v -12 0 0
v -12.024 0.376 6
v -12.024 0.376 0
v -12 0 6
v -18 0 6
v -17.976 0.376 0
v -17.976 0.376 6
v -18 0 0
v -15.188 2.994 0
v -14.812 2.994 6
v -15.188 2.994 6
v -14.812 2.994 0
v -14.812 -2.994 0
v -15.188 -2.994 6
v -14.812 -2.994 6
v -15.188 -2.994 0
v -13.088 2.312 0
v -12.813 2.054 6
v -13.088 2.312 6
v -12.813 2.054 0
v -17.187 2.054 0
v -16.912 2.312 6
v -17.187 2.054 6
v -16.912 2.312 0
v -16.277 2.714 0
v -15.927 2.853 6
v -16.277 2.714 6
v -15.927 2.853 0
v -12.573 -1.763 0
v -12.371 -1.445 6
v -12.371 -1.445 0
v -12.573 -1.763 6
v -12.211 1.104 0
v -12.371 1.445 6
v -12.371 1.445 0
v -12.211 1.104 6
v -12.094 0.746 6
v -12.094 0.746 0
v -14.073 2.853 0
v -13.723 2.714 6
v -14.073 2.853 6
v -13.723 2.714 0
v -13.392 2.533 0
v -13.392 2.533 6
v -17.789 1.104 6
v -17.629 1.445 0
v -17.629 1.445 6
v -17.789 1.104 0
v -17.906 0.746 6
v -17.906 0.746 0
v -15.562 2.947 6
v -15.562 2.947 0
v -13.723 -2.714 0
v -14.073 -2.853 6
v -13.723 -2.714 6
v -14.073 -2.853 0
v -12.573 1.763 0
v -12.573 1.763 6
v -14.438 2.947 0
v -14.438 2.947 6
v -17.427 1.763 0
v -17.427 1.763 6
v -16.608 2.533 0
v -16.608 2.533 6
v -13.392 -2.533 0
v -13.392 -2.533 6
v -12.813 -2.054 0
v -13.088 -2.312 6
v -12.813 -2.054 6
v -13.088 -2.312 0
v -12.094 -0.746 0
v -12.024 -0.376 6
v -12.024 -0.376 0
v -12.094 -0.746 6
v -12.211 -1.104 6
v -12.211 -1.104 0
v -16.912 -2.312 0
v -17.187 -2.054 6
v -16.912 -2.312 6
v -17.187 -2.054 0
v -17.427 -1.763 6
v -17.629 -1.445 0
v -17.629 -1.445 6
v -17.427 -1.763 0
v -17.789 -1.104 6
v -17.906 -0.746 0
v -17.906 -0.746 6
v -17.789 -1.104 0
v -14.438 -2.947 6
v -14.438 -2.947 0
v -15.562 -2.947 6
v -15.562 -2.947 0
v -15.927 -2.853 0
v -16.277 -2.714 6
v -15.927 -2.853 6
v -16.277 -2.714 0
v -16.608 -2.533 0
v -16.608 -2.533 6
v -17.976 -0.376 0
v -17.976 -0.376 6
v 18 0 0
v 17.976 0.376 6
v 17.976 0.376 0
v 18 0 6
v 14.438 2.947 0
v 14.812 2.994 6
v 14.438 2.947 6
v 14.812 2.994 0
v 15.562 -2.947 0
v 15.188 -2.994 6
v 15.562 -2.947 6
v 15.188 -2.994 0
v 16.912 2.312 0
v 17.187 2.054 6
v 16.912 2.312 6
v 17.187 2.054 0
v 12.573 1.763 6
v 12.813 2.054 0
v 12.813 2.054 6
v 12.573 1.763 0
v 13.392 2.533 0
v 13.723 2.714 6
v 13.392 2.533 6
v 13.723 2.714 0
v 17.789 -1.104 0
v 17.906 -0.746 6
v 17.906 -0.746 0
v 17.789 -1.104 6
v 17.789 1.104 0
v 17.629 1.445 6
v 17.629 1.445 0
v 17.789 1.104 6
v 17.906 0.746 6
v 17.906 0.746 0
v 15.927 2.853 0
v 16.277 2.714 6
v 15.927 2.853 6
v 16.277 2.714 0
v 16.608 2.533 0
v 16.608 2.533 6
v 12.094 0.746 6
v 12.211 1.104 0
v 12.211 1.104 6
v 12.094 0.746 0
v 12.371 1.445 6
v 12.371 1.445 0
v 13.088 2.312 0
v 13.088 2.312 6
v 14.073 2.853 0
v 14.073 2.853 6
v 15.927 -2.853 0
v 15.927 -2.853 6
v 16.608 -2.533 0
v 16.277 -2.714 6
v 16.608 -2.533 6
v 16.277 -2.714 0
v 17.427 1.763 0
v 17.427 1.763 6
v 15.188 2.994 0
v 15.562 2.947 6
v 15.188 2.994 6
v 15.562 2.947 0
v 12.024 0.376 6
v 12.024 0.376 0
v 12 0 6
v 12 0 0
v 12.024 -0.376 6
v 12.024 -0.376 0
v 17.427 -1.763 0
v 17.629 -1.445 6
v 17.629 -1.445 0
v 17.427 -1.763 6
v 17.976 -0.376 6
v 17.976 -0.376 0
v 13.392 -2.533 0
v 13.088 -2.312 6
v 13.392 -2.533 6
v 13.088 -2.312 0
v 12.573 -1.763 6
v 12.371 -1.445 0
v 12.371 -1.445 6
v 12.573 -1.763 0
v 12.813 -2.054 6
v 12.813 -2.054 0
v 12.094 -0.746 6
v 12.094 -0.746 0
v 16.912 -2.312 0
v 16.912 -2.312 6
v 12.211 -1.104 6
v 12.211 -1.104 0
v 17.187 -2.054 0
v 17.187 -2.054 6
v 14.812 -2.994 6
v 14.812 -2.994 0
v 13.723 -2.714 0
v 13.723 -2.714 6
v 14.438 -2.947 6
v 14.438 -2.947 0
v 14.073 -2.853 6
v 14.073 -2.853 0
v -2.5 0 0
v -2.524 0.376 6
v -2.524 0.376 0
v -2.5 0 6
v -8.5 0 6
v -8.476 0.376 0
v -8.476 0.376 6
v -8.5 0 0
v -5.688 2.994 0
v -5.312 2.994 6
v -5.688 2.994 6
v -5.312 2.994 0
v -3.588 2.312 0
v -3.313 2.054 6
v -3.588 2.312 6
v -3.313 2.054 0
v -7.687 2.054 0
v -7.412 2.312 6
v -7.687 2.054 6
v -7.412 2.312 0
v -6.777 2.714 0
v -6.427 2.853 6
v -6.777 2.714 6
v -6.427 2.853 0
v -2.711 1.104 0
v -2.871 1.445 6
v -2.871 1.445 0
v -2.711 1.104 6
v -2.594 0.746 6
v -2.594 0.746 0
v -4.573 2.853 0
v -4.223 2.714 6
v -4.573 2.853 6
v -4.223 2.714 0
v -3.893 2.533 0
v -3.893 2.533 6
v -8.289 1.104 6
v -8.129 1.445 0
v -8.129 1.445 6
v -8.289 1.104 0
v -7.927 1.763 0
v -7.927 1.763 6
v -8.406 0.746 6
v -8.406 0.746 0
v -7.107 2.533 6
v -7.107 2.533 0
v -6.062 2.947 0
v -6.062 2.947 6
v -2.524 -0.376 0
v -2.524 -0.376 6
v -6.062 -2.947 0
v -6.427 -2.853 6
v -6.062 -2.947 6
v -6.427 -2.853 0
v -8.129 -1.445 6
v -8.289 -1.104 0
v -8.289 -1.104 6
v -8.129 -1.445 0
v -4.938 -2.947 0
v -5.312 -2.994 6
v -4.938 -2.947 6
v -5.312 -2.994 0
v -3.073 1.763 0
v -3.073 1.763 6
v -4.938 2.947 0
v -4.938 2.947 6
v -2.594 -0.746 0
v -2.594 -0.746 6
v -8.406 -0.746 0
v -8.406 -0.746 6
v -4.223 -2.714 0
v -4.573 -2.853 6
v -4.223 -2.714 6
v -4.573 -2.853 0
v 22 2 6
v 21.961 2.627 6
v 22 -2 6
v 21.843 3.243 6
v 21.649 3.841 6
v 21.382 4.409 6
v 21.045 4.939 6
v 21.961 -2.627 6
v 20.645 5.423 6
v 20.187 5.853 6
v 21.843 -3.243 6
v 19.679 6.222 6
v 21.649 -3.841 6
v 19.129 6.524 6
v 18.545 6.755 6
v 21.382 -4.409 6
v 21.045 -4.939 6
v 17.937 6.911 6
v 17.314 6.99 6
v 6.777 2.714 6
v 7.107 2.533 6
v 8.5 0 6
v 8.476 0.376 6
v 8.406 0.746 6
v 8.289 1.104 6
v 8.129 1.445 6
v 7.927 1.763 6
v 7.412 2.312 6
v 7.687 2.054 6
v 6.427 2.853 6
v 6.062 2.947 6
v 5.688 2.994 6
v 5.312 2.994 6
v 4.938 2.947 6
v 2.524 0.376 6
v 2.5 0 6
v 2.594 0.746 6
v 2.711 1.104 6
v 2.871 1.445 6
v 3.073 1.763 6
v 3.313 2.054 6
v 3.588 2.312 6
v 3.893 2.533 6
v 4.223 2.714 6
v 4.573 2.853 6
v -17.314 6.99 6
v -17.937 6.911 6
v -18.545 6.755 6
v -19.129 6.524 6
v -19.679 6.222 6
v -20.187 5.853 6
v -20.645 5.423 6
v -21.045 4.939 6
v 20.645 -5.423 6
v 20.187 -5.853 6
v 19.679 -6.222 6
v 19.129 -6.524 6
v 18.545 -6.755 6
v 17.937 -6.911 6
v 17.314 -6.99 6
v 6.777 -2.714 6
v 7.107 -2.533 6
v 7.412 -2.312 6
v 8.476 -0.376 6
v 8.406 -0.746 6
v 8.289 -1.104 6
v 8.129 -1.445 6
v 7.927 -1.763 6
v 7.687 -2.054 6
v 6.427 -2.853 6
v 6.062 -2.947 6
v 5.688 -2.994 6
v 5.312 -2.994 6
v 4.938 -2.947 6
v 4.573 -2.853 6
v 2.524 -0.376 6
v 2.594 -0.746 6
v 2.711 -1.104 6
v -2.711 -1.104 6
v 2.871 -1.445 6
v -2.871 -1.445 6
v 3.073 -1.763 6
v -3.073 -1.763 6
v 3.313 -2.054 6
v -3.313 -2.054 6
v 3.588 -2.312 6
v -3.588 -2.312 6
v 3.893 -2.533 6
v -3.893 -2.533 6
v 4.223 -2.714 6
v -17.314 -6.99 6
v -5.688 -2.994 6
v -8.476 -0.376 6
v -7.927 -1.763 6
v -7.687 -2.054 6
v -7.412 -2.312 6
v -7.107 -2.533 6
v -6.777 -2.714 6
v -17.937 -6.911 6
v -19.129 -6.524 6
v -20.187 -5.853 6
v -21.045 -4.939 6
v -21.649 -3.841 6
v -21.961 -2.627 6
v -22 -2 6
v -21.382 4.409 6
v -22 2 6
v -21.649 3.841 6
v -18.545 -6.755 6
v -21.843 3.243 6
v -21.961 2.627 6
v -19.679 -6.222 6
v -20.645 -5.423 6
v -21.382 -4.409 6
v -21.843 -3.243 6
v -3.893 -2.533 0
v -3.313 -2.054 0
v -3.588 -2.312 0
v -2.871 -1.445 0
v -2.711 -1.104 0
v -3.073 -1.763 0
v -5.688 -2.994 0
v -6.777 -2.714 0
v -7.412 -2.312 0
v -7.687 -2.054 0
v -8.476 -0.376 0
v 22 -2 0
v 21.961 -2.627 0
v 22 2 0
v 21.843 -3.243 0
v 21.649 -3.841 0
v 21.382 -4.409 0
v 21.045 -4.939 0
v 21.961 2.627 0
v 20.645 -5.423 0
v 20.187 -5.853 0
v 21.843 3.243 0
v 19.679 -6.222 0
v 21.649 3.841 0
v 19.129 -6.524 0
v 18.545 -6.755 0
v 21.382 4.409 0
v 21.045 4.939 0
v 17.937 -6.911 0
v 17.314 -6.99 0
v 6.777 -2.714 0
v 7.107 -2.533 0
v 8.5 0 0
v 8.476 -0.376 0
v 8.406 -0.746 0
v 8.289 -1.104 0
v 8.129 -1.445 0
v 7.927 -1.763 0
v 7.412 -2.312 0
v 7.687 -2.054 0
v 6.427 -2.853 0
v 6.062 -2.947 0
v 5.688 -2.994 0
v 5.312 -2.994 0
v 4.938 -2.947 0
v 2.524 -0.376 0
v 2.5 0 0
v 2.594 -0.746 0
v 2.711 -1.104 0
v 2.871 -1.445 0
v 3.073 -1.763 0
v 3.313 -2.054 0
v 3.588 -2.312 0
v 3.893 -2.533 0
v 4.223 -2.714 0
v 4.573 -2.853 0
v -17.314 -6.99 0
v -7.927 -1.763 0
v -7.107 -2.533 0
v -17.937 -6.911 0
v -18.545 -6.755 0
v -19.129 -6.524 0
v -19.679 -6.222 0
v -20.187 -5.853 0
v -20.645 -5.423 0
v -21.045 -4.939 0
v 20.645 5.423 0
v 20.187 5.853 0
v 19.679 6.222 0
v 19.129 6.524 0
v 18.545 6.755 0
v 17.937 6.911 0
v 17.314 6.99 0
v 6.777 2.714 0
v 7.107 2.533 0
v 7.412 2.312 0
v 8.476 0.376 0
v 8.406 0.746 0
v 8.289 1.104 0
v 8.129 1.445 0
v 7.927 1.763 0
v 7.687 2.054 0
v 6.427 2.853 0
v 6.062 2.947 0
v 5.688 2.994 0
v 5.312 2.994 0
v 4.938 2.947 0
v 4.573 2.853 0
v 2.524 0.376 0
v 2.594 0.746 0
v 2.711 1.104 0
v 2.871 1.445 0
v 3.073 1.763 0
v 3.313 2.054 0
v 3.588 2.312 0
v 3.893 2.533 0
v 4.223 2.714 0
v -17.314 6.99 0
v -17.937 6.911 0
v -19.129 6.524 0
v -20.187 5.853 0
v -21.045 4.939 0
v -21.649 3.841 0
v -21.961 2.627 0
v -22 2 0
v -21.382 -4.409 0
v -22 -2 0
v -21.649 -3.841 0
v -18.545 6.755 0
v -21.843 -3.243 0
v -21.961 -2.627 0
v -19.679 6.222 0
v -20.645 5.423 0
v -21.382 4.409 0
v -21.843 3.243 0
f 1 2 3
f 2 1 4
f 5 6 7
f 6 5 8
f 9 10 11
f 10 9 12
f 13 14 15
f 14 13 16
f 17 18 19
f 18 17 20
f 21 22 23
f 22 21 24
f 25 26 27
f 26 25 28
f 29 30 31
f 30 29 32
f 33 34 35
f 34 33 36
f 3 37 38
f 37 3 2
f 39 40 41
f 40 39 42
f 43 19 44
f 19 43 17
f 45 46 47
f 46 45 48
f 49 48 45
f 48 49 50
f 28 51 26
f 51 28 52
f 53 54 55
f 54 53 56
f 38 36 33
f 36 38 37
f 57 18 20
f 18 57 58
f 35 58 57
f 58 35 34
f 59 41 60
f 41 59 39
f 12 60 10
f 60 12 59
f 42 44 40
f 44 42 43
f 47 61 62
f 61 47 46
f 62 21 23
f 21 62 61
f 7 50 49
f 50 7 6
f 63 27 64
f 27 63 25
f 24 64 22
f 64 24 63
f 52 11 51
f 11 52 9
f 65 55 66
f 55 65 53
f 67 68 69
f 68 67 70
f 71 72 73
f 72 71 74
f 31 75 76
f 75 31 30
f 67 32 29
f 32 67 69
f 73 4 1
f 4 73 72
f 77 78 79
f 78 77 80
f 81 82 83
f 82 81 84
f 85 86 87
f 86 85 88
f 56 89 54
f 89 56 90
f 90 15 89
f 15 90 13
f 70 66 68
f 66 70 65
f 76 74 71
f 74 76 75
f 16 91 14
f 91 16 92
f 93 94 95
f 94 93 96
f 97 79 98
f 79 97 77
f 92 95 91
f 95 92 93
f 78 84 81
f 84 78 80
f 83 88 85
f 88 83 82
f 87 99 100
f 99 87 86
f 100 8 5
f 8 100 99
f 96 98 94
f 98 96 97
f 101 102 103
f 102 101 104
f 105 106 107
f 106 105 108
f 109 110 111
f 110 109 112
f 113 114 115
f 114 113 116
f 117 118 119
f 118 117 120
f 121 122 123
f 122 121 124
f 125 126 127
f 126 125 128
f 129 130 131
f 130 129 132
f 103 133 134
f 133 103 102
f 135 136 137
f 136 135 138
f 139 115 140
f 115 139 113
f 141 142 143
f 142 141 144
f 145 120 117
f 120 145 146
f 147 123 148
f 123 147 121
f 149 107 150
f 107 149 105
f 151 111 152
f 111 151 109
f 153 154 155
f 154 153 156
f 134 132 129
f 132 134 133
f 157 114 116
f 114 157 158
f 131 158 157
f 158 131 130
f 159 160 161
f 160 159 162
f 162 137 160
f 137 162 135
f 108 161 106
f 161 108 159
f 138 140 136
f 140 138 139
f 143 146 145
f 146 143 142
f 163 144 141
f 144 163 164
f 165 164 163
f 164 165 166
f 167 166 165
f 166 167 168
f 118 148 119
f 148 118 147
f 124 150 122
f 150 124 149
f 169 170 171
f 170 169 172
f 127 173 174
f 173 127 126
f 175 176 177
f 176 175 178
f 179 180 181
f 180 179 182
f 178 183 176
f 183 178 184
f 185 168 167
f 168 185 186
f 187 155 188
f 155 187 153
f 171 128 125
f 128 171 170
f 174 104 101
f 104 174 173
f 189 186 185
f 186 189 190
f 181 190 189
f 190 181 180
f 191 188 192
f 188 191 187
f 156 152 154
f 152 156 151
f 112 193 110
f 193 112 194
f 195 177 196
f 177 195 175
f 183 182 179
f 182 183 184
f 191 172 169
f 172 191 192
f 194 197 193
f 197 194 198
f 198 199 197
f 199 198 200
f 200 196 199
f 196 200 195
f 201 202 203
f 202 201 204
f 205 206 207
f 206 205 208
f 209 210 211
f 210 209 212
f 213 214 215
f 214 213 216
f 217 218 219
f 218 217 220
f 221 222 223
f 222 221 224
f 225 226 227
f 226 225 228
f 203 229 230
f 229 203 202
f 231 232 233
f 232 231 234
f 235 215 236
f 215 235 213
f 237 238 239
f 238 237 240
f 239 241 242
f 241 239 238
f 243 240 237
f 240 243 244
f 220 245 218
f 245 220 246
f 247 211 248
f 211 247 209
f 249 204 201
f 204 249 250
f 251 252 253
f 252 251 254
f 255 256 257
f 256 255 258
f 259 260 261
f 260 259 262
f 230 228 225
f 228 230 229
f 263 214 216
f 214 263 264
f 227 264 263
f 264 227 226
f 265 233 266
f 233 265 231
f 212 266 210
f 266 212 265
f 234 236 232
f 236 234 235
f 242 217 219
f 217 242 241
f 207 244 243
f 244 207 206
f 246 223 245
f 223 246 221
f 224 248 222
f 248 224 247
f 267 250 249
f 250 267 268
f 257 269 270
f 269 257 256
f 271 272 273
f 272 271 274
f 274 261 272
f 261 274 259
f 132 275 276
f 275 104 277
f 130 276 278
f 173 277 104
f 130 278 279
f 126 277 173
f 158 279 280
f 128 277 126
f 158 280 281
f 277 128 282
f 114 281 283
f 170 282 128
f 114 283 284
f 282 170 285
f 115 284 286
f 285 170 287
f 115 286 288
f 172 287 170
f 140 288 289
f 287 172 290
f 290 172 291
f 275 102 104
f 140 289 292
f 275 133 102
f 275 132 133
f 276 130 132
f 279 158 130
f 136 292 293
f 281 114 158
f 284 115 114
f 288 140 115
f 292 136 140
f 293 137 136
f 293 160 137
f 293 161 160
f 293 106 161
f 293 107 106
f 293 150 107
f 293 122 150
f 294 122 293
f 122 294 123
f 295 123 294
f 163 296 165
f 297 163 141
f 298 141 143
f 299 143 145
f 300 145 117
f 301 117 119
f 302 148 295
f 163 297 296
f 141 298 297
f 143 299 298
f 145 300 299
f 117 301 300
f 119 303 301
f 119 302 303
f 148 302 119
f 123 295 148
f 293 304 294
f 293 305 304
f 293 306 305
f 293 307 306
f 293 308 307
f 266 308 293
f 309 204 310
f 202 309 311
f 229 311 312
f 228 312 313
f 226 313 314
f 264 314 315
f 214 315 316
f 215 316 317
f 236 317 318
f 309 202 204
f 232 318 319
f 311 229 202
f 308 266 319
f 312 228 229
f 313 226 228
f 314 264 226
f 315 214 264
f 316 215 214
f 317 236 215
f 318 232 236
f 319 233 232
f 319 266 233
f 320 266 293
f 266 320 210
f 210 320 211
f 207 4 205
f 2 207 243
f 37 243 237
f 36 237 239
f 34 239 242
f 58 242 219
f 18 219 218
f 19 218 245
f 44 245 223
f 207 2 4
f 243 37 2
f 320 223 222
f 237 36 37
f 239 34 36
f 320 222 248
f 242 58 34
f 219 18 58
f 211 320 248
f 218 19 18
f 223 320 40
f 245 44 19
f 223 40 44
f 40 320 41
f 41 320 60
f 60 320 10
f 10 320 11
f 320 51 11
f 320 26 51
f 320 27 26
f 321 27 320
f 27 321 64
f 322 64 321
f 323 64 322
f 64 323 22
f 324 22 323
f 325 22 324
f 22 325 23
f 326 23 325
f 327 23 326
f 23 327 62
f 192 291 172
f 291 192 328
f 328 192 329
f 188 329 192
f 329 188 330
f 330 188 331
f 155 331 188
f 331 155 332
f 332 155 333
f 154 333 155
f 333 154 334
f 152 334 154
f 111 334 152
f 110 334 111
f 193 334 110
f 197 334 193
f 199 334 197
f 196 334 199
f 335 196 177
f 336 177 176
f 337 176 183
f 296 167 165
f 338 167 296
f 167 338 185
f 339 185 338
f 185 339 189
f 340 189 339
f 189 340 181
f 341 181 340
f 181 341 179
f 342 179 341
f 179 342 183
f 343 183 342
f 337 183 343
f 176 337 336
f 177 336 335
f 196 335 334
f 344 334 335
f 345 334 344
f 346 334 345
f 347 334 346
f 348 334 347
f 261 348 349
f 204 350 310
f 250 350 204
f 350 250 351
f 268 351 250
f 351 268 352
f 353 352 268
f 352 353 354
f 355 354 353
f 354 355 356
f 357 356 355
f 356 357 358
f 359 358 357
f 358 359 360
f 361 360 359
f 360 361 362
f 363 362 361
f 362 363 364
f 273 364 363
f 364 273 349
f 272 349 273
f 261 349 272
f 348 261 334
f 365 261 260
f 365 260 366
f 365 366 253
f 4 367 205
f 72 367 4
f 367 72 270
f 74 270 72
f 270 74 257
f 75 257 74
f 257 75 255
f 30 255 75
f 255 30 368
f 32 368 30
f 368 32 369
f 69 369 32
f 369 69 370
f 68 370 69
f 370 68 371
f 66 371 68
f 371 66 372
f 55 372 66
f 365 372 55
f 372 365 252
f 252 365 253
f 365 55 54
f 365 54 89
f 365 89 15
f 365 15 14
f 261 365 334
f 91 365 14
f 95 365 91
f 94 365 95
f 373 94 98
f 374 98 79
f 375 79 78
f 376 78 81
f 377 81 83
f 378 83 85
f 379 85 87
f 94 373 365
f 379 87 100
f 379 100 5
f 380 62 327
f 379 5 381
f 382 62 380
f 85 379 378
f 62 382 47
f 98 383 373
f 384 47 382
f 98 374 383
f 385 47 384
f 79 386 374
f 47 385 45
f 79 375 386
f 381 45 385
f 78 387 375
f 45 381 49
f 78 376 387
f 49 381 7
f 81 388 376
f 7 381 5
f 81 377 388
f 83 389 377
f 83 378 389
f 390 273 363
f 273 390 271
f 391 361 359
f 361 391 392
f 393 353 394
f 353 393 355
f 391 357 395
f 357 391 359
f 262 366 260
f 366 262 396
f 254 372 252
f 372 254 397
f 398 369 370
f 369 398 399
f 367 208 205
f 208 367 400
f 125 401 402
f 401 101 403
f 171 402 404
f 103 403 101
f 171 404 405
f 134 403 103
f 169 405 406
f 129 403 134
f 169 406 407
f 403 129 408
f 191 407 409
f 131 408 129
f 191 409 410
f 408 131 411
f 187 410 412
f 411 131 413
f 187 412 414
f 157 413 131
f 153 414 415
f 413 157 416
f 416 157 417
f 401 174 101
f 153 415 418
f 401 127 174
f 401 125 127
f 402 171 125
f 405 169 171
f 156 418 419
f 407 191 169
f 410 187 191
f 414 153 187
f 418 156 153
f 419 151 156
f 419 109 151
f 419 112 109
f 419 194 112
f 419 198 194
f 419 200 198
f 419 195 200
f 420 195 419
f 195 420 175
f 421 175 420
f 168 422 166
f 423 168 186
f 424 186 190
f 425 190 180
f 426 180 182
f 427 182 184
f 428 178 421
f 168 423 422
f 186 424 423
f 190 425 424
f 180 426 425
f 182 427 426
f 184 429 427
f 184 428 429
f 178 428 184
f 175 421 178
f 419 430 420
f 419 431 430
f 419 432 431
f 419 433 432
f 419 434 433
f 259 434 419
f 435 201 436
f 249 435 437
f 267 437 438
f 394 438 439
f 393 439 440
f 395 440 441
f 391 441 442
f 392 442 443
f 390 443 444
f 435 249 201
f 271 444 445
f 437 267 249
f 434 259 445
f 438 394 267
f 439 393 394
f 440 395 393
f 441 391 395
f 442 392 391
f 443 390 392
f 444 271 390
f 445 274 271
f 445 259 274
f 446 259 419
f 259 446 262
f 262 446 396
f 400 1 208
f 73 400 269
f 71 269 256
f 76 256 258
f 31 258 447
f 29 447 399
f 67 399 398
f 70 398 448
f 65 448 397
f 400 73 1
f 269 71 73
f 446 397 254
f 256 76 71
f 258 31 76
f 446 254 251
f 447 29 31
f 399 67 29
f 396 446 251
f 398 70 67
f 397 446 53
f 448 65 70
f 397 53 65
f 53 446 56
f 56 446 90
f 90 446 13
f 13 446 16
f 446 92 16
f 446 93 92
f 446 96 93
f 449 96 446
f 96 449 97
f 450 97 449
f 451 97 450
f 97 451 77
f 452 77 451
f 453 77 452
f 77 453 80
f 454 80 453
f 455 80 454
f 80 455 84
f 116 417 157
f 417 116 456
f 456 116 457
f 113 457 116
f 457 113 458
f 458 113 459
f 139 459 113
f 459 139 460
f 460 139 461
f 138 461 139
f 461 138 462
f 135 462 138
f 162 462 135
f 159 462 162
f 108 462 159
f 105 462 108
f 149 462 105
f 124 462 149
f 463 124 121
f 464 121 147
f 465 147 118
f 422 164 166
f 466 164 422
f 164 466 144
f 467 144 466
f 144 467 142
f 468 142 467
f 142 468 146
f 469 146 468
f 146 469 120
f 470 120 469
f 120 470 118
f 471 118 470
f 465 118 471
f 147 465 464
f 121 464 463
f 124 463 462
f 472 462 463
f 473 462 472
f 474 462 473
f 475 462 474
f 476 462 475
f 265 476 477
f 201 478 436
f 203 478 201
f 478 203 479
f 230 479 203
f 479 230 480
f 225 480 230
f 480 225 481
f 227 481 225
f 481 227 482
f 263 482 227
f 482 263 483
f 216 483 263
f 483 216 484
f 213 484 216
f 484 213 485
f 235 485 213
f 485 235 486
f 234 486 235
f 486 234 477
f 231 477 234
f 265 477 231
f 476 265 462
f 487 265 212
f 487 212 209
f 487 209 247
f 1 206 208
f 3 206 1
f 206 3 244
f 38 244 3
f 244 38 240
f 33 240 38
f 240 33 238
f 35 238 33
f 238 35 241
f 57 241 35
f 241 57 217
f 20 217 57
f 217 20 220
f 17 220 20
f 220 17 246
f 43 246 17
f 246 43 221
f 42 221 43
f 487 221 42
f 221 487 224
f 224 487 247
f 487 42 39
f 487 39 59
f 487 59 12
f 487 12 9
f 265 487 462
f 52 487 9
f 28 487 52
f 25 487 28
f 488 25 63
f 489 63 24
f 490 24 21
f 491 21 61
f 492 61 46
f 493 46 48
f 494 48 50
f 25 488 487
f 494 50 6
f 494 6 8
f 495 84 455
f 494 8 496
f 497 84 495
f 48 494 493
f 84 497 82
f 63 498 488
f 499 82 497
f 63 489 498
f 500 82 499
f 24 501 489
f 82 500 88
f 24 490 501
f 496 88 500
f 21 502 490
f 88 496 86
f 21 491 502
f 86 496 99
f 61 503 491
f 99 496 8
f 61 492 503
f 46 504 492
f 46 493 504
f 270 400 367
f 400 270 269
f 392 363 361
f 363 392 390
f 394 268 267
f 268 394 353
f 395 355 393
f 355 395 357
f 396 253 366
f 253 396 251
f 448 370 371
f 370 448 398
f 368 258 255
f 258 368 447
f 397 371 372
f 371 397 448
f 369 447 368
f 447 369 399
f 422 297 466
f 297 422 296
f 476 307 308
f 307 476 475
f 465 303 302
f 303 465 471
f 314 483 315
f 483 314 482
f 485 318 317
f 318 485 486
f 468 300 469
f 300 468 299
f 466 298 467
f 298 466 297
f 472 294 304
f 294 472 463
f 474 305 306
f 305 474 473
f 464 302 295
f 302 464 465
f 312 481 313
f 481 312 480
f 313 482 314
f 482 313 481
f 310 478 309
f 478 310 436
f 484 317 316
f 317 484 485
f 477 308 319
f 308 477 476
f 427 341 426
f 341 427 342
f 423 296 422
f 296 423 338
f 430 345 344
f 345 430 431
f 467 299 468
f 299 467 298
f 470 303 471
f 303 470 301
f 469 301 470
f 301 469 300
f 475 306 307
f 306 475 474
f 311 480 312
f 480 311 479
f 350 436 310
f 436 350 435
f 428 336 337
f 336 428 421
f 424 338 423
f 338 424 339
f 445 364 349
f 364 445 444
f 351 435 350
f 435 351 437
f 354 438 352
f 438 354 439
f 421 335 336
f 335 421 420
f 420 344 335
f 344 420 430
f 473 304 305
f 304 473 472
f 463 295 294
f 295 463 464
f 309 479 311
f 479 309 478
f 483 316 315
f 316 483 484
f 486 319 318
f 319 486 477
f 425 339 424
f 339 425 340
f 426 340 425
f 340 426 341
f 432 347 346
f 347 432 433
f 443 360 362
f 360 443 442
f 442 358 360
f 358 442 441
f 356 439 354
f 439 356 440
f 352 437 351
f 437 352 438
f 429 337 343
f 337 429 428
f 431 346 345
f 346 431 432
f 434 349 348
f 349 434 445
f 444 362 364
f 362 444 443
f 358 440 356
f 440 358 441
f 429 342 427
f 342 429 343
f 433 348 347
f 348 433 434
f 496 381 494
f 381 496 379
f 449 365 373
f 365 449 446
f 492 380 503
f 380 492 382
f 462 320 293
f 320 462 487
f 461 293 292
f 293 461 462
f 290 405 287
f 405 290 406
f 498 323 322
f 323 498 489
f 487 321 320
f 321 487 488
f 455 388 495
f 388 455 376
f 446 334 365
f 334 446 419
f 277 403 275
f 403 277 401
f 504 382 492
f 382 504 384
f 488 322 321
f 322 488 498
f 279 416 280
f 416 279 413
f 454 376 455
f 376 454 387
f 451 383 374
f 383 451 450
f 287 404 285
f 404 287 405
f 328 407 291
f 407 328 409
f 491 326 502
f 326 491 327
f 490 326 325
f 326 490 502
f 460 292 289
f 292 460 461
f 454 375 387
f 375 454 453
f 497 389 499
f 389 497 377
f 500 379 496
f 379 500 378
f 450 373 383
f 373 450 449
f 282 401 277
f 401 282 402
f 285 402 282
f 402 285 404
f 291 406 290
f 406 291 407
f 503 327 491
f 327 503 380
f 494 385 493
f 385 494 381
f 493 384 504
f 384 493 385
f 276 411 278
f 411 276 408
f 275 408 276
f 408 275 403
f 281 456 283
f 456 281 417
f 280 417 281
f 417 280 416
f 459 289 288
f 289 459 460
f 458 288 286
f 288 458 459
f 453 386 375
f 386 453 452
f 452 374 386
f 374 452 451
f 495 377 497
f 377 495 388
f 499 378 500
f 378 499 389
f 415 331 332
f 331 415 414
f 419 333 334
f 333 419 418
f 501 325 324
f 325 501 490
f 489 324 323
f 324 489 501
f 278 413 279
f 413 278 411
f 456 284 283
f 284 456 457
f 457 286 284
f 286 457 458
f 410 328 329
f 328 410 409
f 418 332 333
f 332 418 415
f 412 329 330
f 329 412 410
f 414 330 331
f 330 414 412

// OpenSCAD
$fn = 50;


difference() {
	union() {
		hull() {
			translate(v = [-17.0000000000, 2.0000000000, 0]) {
				cylinder(h = 6, r = 5);
			}
			translate(v = [17.0000000000, 2.0000000000, 0]) {
				cylinder(h = 6, r = 5);
			}
			translate(v = [-17.0000000000, -2.0000000000, 0]) {
				cylinder(h = 6, r = 5);
			}
			translate(v = [17.0000000000, -2.0000000000, 0]) {
				cylinder(h = 6, r = 5);
			}
		}
	}
	union() {
		#translate(v = [-15.0000000000, 0.0000000000, 0]) {
			cylinder(h = 6, r = 3.0000000000);
		}
		#translate(v = [15.0000000000, 0.0000000000, 0]) {
			cylinder(h = 6, r = 3.0000000000);
		}
		#translate(v = [-15.0000000000, 0.0000000000, -100.0000000000]) {
			cylinder(h = 200, r = 3.0000000000);
		}
		#translate(v = [-15.0000000000, 0.0000000000, -100.0000000000]) {
			cylinder(h = 200, r = 3.0000000000);
		}
		#translate(v = [15.0000000000, 0.0000000000, -100.0000000000]) {
			cylinder(h = 200, r = 3.0000000000);
		}
		#translate(v = [15.0000000000, 0.0000000000, -100.0000000000]) {
			cylinder(h = 200, r = 3.0000000000);
		}
		#translate(v = [-15.0000000000, 0.0000000000, 0]) {
			cylinder(h = 6, r = 1.5000000000);
		}
		#translate(v = [15.0000000000, 0.0000000000, 0]) {
			cylinder(h = 6, r = 1.5000000000);
		}
		#translate(v = [-15.0000000000, 0.0000000000, 0]) {
			cylinder(h = 6, r = 1.5000000000);
		}
		#translate(v = [15.0000000000, 0.0000000000, 0]) {
			cylinder(h = 6, r = 1.5000000000);
		}
		#translate(v = [-15.0000000000, 0.0000000000, 0]) {
			cylinder(h = 6, r = 1.5000000000);
		}
		#translate(v = [15.0000000000, 0.0000000000, 0]) {
			cylinder(h = 6, r = 1.5000000000);
		}
		#translate(v = [-5.5000000000, 0, 0]) {
			cylinder(h = 6, r = 3.0000000000);
		}
		#translate(v = [5.5000000000, 0, 0]) {
			cylinder(h = 6, r = 3.0000000000);
		}
	}
}
